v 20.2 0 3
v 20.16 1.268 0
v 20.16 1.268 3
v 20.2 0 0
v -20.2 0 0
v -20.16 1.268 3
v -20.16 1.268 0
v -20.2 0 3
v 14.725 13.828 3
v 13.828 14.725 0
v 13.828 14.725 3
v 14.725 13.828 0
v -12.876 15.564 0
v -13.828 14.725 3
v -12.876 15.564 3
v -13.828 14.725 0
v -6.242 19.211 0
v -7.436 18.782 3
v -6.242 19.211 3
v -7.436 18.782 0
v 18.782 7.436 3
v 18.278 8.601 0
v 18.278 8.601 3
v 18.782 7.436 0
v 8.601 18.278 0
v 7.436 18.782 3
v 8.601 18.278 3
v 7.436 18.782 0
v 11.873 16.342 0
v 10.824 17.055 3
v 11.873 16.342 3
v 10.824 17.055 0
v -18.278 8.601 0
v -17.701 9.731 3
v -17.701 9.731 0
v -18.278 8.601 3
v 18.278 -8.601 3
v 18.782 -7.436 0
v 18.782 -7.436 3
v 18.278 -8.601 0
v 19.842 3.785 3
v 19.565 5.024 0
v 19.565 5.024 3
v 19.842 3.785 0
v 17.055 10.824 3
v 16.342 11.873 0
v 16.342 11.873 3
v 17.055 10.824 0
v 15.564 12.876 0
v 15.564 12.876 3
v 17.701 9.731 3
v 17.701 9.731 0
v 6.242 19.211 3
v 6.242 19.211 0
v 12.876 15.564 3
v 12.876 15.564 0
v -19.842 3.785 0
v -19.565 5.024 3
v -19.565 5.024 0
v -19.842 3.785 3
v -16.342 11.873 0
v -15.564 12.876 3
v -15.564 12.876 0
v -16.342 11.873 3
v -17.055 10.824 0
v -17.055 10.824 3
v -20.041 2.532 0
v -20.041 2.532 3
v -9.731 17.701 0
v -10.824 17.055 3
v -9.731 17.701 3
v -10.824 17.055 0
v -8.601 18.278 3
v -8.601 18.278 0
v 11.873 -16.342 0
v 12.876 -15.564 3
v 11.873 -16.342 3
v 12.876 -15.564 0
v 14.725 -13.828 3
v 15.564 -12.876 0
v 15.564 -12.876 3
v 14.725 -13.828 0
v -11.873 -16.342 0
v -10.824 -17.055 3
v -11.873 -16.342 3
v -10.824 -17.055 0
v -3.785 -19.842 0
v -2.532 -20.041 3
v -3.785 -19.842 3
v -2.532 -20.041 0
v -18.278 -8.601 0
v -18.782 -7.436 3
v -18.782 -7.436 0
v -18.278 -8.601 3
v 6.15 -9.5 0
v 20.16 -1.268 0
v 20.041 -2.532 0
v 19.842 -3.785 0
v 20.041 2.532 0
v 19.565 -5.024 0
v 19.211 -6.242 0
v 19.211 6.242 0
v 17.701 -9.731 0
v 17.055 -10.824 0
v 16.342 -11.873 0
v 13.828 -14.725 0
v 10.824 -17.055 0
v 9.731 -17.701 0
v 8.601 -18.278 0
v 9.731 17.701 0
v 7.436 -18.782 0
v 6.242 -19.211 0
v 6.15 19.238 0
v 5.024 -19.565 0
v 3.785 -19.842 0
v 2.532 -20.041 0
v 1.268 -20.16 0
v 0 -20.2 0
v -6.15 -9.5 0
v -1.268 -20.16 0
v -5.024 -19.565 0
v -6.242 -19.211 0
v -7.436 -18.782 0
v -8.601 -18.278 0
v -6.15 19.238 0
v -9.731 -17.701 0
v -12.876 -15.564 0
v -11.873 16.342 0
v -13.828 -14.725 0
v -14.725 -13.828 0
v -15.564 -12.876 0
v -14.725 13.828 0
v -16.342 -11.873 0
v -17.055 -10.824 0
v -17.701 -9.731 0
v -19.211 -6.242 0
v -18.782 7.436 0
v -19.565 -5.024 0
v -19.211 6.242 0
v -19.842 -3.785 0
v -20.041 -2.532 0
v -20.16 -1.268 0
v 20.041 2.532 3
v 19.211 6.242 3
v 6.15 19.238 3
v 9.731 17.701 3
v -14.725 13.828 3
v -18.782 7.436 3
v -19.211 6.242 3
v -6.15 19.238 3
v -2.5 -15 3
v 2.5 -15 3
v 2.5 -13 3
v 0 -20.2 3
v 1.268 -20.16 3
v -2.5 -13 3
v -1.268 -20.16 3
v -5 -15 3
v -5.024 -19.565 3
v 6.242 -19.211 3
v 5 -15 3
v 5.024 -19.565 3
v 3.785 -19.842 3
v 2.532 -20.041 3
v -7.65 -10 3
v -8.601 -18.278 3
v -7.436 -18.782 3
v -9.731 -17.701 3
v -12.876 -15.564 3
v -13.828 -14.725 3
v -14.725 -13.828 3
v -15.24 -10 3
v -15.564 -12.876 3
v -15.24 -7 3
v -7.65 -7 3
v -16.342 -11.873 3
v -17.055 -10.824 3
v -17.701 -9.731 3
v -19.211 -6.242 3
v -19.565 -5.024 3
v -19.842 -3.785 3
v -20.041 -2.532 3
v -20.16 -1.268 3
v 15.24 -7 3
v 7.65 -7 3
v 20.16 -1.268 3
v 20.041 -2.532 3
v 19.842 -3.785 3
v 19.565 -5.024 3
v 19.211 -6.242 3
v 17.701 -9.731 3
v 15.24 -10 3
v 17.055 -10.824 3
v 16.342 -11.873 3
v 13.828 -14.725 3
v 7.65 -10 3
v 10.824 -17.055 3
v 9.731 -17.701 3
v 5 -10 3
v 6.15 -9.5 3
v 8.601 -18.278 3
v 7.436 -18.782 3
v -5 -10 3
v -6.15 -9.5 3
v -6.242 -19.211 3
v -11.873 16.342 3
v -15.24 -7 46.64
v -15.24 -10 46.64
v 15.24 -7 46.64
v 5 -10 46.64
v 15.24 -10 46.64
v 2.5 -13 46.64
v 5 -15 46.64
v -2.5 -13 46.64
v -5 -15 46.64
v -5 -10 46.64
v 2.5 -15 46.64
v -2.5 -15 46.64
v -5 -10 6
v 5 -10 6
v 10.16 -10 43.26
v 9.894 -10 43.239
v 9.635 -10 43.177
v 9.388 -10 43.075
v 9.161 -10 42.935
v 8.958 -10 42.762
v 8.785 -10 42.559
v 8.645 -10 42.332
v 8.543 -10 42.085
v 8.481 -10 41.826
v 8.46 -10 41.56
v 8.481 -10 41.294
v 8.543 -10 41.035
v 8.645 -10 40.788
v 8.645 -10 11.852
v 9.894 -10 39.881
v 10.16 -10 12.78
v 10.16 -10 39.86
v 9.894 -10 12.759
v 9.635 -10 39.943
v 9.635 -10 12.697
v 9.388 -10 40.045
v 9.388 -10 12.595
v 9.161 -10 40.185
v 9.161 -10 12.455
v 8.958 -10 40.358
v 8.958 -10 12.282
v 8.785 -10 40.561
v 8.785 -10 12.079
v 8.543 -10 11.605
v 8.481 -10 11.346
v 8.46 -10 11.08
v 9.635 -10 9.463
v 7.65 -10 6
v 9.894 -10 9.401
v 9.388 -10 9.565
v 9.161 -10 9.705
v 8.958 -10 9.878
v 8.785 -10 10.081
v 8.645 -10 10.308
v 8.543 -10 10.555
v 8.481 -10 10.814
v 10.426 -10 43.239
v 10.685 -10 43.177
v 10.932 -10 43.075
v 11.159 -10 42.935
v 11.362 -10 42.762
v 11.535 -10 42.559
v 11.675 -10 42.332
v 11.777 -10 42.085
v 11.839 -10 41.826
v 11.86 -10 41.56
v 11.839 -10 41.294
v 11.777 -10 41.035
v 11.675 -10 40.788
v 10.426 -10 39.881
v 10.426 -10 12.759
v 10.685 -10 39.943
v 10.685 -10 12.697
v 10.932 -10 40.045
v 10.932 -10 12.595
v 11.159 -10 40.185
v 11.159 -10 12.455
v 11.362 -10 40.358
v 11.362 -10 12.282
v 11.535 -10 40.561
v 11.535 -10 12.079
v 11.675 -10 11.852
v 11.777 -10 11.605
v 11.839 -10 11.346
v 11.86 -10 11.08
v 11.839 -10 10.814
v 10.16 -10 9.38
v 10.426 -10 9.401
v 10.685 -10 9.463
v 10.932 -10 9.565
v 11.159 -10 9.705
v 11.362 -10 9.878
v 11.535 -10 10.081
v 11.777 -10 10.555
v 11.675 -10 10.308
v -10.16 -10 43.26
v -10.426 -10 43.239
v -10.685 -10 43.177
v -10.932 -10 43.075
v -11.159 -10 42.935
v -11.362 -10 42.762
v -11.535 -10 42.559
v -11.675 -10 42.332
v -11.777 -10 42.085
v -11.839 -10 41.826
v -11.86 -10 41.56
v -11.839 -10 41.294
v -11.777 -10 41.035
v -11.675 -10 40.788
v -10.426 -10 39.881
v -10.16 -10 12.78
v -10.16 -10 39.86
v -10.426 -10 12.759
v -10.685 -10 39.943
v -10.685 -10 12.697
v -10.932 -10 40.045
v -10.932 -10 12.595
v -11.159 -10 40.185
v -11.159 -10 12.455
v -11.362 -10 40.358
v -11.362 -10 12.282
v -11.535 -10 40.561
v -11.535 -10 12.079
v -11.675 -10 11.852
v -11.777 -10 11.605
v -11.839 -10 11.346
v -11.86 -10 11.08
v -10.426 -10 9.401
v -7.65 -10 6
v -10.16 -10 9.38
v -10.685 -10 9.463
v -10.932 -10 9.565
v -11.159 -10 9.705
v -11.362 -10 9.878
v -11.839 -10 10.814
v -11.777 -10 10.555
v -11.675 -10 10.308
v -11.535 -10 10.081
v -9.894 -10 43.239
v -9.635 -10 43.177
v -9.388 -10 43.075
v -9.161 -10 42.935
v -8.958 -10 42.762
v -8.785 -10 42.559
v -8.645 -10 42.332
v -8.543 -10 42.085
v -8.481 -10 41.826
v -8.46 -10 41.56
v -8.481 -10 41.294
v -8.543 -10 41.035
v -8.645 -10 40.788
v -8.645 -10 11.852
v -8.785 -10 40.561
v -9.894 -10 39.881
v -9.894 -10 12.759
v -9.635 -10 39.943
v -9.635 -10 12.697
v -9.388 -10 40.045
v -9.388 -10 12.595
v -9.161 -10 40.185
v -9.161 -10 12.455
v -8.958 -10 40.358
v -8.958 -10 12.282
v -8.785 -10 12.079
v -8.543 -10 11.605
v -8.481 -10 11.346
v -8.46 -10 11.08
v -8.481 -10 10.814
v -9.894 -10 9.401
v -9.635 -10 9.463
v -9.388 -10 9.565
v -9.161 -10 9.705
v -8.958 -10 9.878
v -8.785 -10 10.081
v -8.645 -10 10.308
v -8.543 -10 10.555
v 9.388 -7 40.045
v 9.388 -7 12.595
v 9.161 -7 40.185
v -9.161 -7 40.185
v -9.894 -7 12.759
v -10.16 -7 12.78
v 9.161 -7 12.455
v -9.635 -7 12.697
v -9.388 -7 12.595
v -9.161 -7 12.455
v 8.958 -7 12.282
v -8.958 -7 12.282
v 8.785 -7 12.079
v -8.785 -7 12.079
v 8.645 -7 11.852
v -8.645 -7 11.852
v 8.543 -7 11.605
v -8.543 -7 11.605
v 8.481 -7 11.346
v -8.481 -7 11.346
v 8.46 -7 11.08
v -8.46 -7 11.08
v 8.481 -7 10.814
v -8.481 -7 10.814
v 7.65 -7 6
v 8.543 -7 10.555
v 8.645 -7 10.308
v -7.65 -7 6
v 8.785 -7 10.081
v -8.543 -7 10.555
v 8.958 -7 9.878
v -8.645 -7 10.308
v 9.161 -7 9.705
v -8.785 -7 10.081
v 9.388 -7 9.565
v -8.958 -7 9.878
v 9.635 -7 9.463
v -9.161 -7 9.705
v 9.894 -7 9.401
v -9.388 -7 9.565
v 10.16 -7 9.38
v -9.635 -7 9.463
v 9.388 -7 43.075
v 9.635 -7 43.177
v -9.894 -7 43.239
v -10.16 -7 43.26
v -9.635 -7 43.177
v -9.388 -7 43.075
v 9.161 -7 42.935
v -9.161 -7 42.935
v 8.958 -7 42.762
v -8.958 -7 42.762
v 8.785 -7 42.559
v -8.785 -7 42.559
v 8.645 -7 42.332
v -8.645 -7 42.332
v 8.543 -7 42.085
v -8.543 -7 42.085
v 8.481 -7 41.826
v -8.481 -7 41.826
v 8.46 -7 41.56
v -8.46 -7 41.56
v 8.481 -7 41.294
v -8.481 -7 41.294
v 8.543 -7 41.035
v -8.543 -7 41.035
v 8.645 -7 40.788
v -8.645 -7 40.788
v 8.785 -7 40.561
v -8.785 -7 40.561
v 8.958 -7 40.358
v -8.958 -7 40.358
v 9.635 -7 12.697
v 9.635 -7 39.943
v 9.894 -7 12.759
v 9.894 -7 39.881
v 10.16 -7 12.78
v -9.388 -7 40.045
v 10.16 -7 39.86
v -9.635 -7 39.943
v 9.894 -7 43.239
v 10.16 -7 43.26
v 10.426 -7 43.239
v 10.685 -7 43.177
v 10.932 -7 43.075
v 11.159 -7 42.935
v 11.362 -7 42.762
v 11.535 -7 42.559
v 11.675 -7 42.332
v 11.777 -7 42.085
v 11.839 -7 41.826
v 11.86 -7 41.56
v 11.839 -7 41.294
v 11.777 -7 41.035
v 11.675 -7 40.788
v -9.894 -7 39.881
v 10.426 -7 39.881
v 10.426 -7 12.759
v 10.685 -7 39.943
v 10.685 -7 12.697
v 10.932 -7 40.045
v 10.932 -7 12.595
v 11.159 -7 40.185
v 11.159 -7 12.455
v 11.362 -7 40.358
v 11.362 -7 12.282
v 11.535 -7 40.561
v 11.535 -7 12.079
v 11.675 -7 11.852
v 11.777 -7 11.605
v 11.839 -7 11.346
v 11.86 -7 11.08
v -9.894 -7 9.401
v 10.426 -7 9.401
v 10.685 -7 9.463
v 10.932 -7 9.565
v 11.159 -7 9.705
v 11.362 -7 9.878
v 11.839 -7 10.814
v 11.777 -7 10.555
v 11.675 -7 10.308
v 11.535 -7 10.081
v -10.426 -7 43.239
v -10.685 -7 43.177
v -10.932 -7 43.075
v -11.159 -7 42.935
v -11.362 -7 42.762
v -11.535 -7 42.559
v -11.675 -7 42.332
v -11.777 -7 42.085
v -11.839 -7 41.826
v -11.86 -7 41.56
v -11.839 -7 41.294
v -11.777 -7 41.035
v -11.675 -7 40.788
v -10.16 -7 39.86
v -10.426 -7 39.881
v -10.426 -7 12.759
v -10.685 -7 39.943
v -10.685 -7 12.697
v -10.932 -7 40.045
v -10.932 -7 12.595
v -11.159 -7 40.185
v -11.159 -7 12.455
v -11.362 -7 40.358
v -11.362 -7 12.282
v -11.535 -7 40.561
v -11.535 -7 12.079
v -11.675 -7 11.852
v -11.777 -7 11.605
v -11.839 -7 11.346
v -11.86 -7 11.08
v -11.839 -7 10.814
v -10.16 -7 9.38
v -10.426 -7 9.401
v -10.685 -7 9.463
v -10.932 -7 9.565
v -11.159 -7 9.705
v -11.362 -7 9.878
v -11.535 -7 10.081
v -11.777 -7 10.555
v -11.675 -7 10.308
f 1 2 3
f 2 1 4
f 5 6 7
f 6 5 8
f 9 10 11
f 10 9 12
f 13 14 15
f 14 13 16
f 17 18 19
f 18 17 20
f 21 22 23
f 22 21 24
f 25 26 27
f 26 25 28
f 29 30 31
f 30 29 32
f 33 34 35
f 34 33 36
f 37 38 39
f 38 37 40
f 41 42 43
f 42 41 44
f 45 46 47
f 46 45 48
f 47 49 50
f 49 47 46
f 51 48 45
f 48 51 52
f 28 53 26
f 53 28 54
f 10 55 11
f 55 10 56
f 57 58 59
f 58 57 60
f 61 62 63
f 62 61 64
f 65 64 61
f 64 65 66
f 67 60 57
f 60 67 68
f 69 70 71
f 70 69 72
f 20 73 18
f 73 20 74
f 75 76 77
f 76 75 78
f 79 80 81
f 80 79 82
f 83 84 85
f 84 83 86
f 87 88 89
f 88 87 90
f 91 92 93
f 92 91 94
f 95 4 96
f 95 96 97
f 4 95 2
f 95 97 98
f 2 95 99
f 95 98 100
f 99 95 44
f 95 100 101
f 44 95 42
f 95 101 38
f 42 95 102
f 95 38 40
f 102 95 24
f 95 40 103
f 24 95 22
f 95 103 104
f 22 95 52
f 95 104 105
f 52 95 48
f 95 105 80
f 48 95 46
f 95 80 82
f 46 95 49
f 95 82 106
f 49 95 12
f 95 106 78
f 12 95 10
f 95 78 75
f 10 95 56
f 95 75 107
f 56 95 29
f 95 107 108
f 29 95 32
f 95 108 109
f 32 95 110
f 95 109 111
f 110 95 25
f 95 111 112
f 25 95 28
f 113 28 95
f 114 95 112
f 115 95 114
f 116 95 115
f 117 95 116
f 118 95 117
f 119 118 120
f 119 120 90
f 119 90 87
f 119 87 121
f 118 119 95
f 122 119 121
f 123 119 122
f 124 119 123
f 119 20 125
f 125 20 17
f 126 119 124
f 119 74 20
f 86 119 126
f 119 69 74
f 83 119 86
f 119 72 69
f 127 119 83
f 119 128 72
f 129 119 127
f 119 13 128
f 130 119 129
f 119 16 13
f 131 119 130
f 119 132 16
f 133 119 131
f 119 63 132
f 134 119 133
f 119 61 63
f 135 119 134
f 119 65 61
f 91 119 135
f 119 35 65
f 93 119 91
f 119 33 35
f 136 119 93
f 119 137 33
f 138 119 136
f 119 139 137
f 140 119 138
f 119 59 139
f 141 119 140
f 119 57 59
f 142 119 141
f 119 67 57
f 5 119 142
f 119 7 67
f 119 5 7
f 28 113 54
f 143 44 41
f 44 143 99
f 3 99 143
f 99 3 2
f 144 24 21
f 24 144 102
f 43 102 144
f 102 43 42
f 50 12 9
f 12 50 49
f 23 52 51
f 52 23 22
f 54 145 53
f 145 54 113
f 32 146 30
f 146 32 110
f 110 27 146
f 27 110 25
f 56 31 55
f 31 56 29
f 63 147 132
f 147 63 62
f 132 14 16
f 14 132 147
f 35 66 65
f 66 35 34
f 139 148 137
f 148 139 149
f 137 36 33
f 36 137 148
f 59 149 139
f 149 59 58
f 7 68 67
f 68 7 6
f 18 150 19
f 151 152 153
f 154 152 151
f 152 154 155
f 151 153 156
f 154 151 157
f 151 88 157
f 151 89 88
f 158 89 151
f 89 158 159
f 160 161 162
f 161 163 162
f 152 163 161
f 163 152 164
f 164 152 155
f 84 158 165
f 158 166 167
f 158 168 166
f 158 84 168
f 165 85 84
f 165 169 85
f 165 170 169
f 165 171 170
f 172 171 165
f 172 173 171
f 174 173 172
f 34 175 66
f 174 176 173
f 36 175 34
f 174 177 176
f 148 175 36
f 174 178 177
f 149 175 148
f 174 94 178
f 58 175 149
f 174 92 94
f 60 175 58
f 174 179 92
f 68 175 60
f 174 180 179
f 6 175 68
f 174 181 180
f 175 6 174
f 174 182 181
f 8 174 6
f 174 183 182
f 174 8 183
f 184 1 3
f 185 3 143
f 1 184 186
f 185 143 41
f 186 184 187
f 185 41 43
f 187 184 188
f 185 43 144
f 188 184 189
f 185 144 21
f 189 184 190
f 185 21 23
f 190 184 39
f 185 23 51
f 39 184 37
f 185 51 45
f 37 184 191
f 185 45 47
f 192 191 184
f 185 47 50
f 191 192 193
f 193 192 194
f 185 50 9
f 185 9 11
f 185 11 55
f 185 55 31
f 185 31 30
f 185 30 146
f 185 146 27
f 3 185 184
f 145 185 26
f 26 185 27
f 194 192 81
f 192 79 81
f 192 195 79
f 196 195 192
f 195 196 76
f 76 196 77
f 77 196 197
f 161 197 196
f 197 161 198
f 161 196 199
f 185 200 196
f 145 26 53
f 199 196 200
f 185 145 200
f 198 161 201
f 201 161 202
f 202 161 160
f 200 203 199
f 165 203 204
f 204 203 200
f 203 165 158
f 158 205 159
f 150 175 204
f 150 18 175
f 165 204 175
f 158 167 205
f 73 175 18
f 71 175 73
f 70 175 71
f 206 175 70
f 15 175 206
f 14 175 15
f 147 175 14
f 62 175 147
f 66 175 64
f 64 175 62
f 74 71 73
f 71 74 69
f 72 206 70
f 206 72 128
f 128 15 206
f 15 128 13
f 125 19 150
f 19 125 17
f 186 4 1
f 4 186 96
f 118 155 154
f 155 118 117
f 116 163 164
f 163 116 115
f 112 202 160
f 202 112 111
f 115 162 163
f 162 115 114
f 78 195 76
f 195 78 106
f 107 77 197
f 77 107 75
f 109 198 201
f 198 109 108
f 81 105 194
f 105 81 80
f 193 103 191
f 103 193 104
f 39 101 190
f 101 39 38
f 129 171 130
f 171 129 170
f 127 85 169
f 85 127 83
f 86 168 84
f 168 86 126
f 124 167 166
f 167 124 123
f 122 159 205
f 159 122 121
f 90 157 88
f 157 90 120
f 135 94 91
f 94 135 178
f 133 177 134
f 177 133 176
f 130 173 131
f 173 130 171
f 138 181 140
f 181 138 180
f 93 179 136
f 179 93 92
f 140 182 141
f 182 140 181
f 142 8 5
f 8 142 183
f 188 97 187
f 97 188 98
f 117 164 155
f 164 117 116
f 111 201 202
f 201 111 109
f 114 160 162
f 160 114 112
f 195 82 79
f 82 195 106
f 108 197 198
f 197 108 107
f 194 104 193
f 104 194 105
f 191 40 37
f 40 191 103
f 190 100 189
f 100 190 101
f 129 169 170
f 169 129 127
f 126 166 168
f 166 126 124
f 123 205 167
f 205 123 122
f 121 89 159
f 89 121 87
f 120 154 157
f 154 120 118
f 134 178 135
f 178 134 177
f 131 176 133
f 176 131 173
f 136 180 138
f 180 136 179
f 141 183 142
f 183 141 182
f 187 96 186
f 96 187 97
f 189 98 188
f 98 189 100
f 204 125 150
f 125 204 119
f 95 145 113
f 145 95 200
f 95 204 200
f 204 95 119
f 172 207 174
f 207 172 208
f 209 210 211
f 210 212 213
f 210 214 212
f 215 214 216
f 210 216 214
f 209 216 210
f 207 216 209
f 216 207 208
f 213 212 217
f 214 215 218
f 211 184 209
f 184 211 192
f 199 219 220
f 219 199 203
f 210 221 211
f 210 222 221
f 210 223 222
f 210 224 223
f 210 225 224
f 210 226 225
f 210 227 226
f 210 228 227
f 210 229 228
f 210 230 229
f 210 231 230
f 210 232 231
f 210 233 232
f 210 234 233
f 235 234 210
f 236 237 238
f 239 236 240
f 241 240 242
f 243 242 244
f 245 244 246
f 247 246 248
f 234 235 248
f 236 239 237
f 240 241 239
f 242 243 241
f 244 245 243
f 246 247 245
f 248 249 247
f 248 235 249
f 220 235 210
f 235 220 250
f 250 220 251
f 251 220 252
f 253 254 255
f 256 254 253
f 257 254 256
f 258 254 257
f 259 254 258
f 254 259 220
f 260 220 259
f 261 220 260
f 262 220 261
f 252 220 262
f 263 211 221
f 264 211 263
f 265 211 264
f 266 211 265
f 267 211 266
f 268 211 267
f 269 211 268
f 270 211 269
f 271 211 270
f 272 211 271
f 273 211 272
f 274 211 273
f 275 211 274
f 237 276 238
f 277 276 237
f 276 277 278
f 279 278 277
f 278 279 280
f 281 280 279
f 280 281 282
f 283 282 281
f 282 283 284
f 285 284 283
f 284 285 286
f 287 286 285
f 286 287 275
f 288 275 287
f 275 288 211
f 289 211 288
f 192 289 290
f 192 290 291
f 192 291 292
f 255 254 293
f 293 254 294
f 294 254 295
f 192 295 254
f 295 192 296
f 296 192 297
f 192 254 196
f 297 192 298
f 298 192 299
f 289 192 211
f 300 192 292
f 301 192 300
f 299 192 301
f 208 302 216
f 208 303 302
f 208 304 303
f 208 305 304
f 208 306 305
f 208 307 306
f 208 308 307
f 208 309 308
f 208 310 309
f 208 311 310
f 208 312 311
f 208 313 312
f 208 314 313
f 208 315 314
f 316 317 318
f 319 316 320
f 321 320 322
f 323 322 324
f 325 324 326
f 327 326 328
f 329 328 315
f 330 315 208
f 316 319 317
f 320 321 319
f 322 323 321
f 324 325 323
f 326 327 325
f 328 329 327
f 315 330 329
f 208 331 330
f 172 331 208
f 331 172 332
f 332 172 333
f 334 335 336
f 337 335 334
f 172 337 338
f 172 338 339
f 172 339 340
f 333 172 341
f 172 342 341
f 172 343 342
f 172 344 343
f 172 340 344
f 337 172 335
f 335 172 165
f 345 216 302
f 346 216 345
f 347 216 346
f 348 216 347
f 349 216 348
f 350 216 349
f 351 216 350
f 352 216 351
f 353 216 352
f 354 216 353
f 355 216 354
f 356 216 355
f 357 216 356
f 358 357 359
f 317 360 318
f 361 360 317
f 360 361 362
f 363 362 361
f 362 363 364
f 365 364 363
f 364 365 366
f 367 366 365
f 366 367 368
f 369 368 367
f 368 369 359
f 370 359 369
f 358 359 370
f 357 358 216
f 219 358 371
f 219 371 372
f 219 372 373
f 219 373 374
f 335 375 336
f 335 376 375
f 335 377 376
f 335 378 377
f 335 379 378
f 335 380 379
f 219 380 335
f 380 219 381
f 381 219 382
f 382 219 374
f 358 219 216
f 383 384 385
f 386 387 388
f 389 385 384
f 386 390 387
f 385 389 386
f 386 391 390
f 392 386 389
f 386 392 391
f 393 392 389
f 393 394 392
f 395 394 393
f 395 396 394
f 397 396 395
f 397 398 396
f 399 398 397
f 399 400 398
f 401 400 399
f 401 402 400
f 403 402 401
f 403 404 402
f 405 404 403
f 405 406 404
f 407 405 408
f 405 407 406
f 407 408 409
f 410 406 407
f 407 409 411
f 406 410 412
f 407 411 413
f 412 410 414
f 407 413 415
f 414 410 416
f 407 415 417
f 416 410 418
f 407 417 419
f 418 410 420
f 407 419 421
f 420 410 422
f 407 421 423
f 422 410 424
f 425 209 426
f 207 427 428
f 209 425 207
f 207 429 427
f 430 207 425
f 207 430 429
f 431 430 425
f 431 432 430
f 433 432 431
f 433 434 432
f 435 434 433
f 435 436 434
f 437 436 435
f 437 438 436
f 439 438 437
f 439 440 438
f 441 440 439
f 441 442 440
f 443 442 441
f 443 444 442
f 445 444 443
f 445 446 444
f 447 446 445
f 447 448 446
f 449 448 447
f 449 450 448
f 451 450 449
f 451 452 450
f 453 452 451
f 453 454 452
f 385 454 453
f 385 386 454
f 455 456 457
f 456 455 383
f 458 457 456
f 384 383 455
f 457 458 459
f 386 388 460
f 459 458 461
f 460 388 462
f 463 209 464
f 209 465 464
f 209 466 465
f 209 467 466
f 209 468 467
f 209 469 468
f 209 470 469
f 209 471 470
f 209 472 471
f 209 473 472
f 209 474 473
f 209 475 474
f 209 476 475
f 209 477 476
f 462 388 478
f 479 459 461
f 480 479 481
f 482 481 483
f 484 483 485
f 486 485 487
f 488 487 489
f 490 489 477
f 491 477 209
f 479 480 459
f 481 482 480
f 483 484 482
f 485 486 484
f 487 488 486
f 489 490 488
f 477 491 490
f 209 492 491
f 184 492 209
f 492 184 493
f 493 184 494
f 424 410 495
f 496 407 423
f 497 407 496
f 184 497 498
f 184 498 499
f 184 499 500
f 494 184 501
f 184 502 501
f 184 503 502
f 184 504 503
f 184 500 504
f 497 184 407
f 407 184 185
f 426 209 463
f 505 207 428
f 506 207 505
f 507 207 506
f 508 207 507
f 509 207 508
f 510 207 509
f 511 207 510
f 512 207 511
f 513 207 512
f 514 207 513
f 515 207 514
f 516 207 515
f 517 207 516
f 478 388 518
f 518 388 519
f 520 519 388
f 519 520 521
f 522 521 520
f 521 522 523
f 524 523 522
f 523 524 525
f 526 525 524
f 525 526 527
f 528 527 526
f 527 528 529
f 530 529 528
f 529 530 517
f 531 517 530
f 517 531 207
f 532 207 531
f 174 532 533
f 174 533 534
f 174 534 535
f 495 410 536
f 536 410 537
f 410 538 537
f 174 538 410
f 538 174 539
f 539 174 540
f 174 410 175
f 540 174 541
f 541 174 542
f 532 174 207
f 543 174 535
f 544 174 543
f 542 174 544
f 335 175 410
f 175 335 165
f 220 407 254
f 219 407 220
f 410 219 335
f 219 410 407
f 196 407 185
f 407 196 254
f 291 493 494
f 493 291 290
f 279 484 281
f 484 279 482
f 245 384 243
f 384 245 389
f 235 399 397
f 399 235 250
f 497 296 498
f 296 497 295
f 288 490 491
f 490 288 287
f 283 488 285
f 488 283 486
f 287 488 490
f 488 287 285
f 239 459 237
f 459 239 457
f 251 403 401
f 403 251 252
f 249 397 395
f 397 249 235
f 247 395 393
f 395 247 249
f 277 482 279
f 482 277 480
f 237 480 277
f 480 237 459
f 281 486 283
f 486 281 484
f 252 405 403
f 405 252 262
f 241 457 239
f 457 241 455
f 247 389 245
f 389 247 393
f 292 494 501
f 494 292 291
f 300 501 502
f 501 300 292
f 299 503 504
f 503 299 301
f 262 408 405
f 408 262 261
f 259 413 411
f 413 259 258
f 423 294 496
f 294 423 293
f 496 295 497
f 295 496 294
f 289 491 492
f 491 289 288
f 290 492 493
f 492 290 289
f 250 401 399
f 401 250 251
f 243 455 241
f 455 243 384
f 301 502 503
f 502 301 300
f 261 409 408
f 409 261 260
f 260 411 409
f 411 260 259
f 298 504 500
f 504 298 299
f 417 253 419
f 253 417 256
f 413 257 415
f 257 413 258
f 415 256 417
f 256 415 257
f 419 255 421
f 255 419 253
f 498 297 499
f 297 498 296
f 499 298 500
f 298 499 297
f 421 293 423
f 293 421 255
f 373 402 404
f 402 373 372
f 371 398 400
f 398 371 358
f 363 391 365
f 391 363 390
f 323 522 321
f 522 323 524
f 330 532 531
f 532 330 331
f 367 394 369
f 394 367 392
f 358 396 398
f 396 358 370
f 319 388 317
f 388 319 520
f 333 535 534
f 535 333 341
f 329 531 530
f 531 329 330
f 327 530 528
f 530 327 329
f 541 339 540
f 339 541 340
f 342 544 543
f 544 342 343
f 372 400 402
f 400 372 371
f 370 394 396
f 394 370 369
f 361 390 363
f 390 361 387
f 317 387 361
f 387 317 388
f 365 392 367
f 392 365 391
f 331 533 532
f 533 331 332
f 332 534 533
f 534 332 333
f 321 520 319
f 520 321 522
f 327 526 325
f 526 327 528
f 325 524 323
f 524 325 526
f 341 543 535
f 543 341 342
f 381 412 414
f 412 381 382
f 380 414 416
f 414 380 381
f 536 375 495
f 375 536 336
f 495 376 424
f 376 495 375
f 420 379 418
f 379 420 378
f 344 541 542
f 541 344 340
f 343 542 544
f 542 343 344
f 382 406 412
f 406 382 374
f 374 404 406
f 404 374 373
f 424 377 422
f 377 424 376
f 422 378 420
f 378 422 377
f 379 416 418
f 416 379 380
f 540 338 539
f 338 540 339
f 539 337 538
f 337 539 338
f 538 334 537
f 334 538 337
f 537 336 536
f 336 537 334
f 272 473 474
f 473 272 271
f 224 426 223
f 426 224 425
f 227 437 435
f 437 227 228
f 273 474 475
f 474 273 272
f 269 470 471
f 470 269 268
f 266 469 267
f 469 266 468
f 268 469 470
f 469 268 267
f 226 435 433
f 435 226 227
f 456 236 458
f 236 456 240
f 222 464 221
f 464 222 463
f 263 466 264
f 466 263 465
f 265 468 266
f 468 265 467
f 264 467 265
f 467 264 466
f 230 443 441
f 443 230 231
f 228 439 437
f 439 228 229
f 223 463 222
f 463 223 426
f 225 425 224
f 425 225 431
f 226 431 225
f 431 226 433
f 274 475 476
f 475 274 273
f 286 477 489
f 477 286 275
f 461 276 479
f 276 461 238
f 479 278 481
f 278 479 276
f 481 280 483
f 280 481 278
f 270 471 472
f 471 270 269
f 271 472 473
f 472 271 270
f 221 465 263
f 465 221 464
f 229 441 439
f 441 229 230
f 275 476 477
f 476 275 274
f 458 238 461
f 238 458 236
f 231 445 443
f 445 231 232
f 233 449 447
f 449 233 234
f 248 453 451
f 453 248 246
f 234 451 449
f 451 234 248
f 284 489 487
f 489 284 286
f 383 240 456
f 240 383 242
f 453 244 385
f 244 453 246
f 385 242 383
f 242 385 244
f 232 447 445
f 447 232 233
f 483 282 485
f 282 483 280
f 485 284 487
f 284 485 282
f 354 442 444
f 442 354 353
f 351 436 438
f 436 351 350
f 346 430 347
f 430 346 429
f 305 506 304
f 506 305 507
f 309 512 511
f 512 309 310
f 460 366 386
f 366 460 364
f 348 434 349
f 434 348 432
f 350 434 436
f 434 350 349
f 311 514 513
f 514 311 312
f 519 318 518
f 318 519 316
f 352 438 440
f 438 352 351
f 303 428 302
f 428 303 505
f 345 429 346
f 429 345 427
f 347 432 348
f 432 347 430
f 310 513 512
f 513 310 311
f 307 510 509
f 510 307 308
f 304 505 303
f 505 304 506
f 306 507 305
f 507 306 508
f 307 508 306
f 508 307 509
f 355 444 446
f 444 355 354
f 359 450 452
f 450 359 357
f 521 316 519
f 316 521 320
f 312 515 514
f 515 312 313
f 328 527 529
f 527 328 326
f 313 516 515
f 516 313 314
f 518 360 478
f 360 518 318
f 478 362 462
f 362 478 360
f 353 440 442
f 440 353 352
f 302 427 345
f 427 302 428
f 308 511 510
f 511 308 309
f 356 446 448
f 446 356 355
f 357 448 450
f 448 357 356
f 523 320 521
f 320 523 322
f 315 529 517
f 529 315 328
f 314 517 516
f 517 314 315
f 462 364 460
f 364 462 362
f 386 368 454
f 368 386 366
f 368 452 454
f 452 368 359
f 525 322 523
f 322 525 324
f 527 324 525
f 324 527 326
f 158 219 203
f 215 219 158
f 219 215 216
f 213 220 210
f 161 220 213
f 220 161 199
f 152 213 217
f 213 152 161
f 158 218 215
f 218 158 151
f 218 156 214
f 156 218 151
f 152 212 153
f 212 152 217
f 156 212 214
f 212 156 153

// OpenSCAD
// file: ../src/polyScrewThread_r1.scad
/*
 *    polyScrewThread_r1.scad    by aubenc @ Thingiverse
 *
 * This script contains the library modules that can be used to generate
 * threaded rods, screws and nuts.
 *
 * http://www.thingiverse.com/thing:8796
 *
 * CC Public Domain
 */


/* Example:
 * Just a 100mm long threaded rod.
 *
 * screw_thread(15,   // Outer diameter of the thread
 *               4,   // Step, traveling length per turn, also, tooth height, whatever...
 *              55,   // Degrees for the shape of the tooth 
 *                       (XY plane = 0, Z = 90, btw, 0 and 90 will/should not work...)
 *             100,   // Length (Z) of the tread
 *            PI/2,   // Resolution, one face each "PI/2" mm of the perimeter, 
 *               0);  // Countersink style:
 *                         -2 - Not even flat ends
 *                         -1 - Bottom (countersink'd and top flat)
 *                          0 - None (top and bottom flat)
 *                          1 - Top (bottom flat)
 *                          2 - Both (countersink'd)
 */
module screw_thread(od,st,lf0,lt,rs,cs)
{
    or=od/2;
    ir=or-st/2*cos(lf0)/sin(lf0);
    pf=2*PI*or;
    sn=floor(pf/rs);
    lfxy=360/sn;
    ttn=round(lt/st+1);
    zt=st/sn;

    intersection()
    {
        if (cs >= -1)
        {
           thread_shape(cs,lt,or,ir,sn,st);
        }

        full_thread(ttn,st,sn,zt,lfxy,or,ir);
    }
}

/* Example.
 * A nut for the thread rod example.
 *
 * hexa_nut(24,  // Distance between flats
 *           8,  // Height 
 *           4,  // Step height (the half will be used to countersink the ends)
 *          55,  // Degrees (same as used for the screw_thread example)
 *          15,  // Outer diameter of the thread to match
 *         0.5)  // Resolution, you may want to set this to small values
 *                  (quite high res) to minimize overhang issues
 *
 */
module hex_nut(df,hg,sth,clf,cod,crs)
{

    difference()
    {
        hex_head(hg,df);

        hex_countersink_ends(sth/2,cod,clf,crs,hg);

        screw_thread(cod,sth,clf,hg,crs,-2);
    }
}


module hex_screw(od,st,lf0,lt,rs,cs,df,hg,ntl,ntd)
{
    ntr=od/2-(st/2)*cos(lf0)/sin(lf0);

    union()
    {
        hex_head(hg,df);

        translate([0,0,hg])
        if ( ntl == 0 )
        {
            cylinder(h=0.01, r=ntr, center=true);
        }
        else
        {
            if ( ntd == -1 )
            {
                cylinder(h=ntl+0.01, r=ntr, $fn=floor(od*PI/rs), center=false);
            }
            else if ( ntd == 0 )
            {
                union()
                {
                    cylinder(h=ntl-st/2,
                             r=od/2, $fn=floor(od*PI/rs), center=false);

                    translate([0,0,ntl-st/2])
                    cylinder(h=st/2,
                             r1=od/2, r2=ntr, 
                             $fn=floor(od*PI/rs), center=false);
                }
            }
            else
            {
                cylinder(h=ntl, r=ntd/2, $fn=ntd*PI/rs, center=false);
            }
        }

        translate([0,0,ntl+hg]) screw_thread(od,st,lf0,lt,rs,cs);
    }
}

module hex_screw_0(od,st,lf0,lt,rs,cs,df,hg,ntl,ntd)
{
    ntr=od/2-(st/2)*cos(lf0)/sin(lf0);

    union()
    {
        hex_head_0(hg,df);

        translate([0,0,hg])
        if ( ntl == 0 )
        {
            cylinder(h=0.01, r=ntr, center=true);
        }
        else
        {
            if ( ntd == -1 )
            {
                cylinder(h=ntl+0.01, r=ntr, $fn=floor(od*PI/rs), center=false);
            }
            else if ( ntd == 0 )
            {
                union()
                {
                    cylinder(h=ntl-st/2,
                             r=od/2, $fn=floor(od*PI/rs), center=false);

                    translate([0,0,ntl-st/2])
                    cylinder(h=st/2,
                             r1=od/2, r2=ntr, 
                             $fn=floor(od*PI/rs), center=false);
                }
            }
            else
            {
                cylinder(h=ntl, r=ntd/2, $fn=ntd*PI/rs, center=false);
            }
        }

        translate([0,0,ntl+hg]) screw_thread(od,st,lf0,lt,rs,cs);
    }
}

module thread_shape(cs,lt,or,ir,sn,st)
{
    if ( cs == 0 )
    {
        cylinder(h=lt, r=or, $fn=sn, center=false);
    }
    else
    {
        union()
        {
            translate([0,0,st/2])
              cylinder(h=lt-st+0.005, r=or, $fn=sn, center=false);

            if ( cs == -1 || cs == 2 )
            {
                cylinder(h=st/2, r1=ir, r2=or, $fn=sn, center=false);
            }
            else
            {
                cylinder(h=st/2, r=or, $fn=sn, center=false);
            }

            translate([0,0,lt-st/2])
            if ( cs == 1 || cs == 2 )
            {
                  cylinder(h=st/2, r1=or, r2=ir, $fn=sn, center=false);
            }
            else
            {
                cylinder(h=st/2, r=or, $fn=sn, center=false);
            }
        }
    }
}

module full_thread(ttn,st,sn,zt,lfxy,or,ir)
{
  if(ir >= 0.2)
  {
    for(i=[0:ttn-1])
    {
        for(j=[0:sn-1])
			assign( pt = [	[0,                  0,                  i*st-st            ],
                        [ir*cos(j*lfxy),     ir*sin(j*lfxy),     i*st+j*zt-st       ],
                        [ir*cos((j+1)*lfxy), ir*sin((j+1)*lfxy), i*st+(j+1)*zt-st   ],
								[0,0,i*st],
                        [or*cos(j*lfxy),     or*sin(j*lfxy),     i*st+j*zt-st/2     ],
                        [or*cos((j+1)*lfxy), or*sin((j+1)*lfxy), i*st+(j+1)*zt-st/2 ],
                        [ir*cos(j*lfxy),     ir*sin(j*lfxy),     i*st+j*zt          ],
                        [ir*cos((j+1)*lfxy), ir*sin((j+1)*lfxy), i*st+(j+1)*zt      ],
                        [0,                  0,                  i*st+st            ]	])
        {
            polyhedron(points=pt,
              		  triangles=[	[1,0,3],[1,3,6],[6,3,8],[1,6,4],
											[0,1,2],[1,4,2],[2,4,5],[5,4,6],[5,6,7],[7,6,8],
											[7,8,3],[0,2,3],[3,2,7],[7,2,5]	]);
        }
    }
  }
  else
  {
    echo("Step Degrees too agresive, the thread will not be made!!");
    echo("Try to increase de value for the degrees and/or...");
    echo(" decrease the pitch value and/or...");
    echo(" increase the outer diameter value.");
  }
}

module hex_head(hg,df)
{
	rd0=df/2/sin(60);
	x0=0;	x1=df/2;	x2=x1+hg/2;
	y0=0;	y1=hg/2;	y2=hg;

	intersection()
	{
	   cylinder(h=hg, r=rd0, $fn=6, center=false);

		rotate_extrude(convexity=10, $fn=6*round(df*PI/6/0.5))
		polygon([ [x0,y0],[x1,y0],[x2,y1],[x1,y2],[x0,y2] ]);
	}
}

module hex_head_0(hg,df)
{
    cylinder(h=hg, r=df/2/sin(60), $fn=6, center=false);
}

module hex_countersink_ends(chg,cod,clf,crs,hg)
{
    translate([0,0,-0.1])
    cylinder(h=chg+0.01, 
             r1=cod/2, 
             r2=cod/2-(chg+0.1)*cos(clf)/sin(clf),
             $fn=floor(cod*PI/crs), center=false);

    translate([0,0,hg-chg+0.1])
    cylinder(h=chg+0.01, 
             r1=cod/2-(chg+0.1)*cos(clf)/sin(clf),
             r2=cod/2, 
             $fn=floor(cod*PI/crs), center=false);
}
// file: ../src/WINDGAUGE02A_S03.scad
$fn=40; // model faces resolution.
include <../configuration.scad>

include <polyScrewThread_r1.scad>

//Držák na konektor RJ11

S03_mezera_pod_modulem = 3;
sloupek_hloubka = 5; 
sloupek_sirka = 10;
drazka_hloubka = 2;
drazka_sirka = 5;

PI=3.141592;
module WINDGAUGE02A_S03()
    {
    difference()
        {
        translate([0,0,0])
            cylinder (h = S01_sila_drzaku_RJ11, r=(S01_prumer_vnitrni)/2-S01_hloubka_zavitu/2-0.3, $fn=100); 
            
        translate([0,0,S01_sila_drzaku_RJ11/2])           
            cube([S01_hrana_A_RJ11,S01_hrana_B_RJ11,S01_sila_drzaku_RJ11+0.01],center=true);

        //otvor až ke kraji
        translate([0,((S01_prumer_vnitrni)/2-S01_hloubka_zavitu/2+0.5)/2,S01_sila_drzaku_RJ11/2])
            cube([S01_hrana_A_RJ11,(S01_prumer_vnitrni)/2-S01_hloubka_zavitu/2+0.5,S01_sila_drzaku_RJ11+0.01],center=true);
        }
        
        // desticka pro pridelani modulu..
     difference(){
         translate([-senzor_sirka/2, -10, S01_sila_drzaku_RJ11])
            cube([senzor_sirka,3,S03_mezera_pod_modulem+senzor_delka]);
         
         translate([-(S01_hrana_A_RJ11+3)/2, -10, S01_sila_drzaku_RJ11])
            cube([S01_hrana_A_RJ11+3,3,S03_mezera_pod_modulem]);
         
         translate([10.16, 0, S01_sila_drzaku_RJ11+10.16*0.5+S03_mezera_pod_modulem])
            rotate([90, 0, 0]) cylinder(d=prumer_sroubu, h=50);
         translate([-10.16, 0, S01_sila_drzaku_RJ11+10.16*0.5+S03_mezera_pod_modulem])
            rotate([90, 0, 0]) cylinder(d=prumer_sroubu, h=50);
         translate([10.16, 0, S01_sila_drzaku_RJ11+10.16*3.5+S03_mezera_pod_modulem])
            rotate([90, 0, 0]) cylinder(d=prumer_sroubu, h=50);
         translate([-10.16, 0, S01_sila_drzaku_RJ11+10.16*3.5+S03_mezera_pod_modulem])
            rotate([90, 0, 0]) cylinder(d=prumer_sroubu, h=50);
         }
     difference(){
         translate([-sloupek_sirka/2, -10-sloupek_hloubka, S01_sila_drzaku_RJ11])
            cube([sloupek_sirka, sloupek_hloubka ,S03_mezera_pod_modulem+senzor_delka]);
         
         translate([-drazka_sirka/2, -10-sloupek_hloubka*2+drazka_hloubka, S01_sila_drzaku_RJ11])
            cube([drazka_sirka, sloupek_hloubka ,S03_mezera_pod_modulem+senzor_delka+0.3]);
        
     }

    }

// Kontrolni valec. Vse jim musi projit
//#% cylinder(h=S01_vyska, d=(S01_prumer_vnitrni)-1-1.5*S01_hloubka_zavitu);
  
WINDGAUGE02A_S03(); 
// file: ../configuration.scad
$fn=40; // model faces resolution.

//OBECNE PARAMETRY 
//----------------------------------------------------------------
//----------------------------------------------------------------
//WINDGAUGE02A_S02 - Parametry pro hlavni valec anemometru
S01_hloubka_zavitu=4;
S01_vyska=95; //80
S01_prumer_vnitrni=45;
S01_prumer_vnitrniB=30;
S01_prechod_vyska=45;
S01_prechod_delka=30;
S01_sila_materialu=1.3;
S01_vyska_horni_zavit=10;
S01_vyska_spodniho_zavitu=10;
S01_sila_drzaku_RJ11=3; //vyška drážky
S01_hrana_A_RJ11=12.3;
S01_hrana_B_RJ11=19;
S01_tolerance_zavit=1.5;

//Obecné parametry
prumer_osicky=5;
sterbina_na_osicku=0.5; //aby nepraskal a držel držák rotoru na hřídelce

//Rozmery modulu pro lozisko
senzor_delka=10.16*4;
senzor_sirka=10.16*3;
senzor_vyska_IO=2;
senzor_odstup_od_magnetu=2;

//Parametry loziska
lozisko_prumer_vnitrni=4.9;
lozisko_prumer_vnejsi=16.15;
lozisko_vyska=5*2;
lozisko_prekryv=1.5;

//Parametry magnetu
magnet_pocet=3;
magnet_prumer=6.3;
magnet_vyska=3;
magnet_zapusteni=2;
magnet_tolerance_prumeru=0.2;
magnet_vzdalenost = 9; // vzdalenost magnetu od stredu

R03_vyska_narezeni_hridelky=5;

//Parametry sroubu
prumer_sroubu=3.4;
prumer_hlavy_sroubu=6;
vyska_hlavy_sroubu=4;
vyska_matky=3;
sirka_matky=6.7;

sirka_matky_tol=0.175;
prumer_orechu=10;

//WINDGAUGE02A_R01 //pro lopatku
L01_hrana_drzaku_a=10;
L01_hrana_drzaku_b=3;
L01_delka_uchytu=25;
L01_prumer_lopatky=40;
L01_sila_materialu_lopatky=1.2;

//WINDGAUGE02A_D01 //uchyt velky
D01_material_pod_zavitem=5;
D01_material_za_zavitem=3;
D01_material_pred_zavitem=2;
D01_delka_tyce=60;
D01_sirka_tyce=10;

//WINDGAUGE02A_D02 //uchyt na sloup
D02_sila_materialu=4;
D02_vyska_uchytky=30;
D02_prumer_obruby=24; 

//27mm - 3/4 trubka
D02_delka_celeho_uchytu=60;
D02_dotahova_vzdalenost=1.5;
D02_prumer_uchytneho_sroubu=4.2;
//D02_sirka_matky=9.1; //pro M4
//D02_vyska_matky=3;
D02_sirka_matky= sirka_matky; //pro M3
D02_vyska_matky= vyska_matky;

//WINDGAUGE02A_R01 //rotor s prekritim statoru
R01_vyska_preryti_statoru=10;
R01_sila_materialu_pro_prekriti=1.3;
R01_mezera_mezi_statorem_rotorem=3;

//WINDGAUGE02A_R03 //drzak magnetu
R05_sirka_matky=10;
// main file
$fn=100; // model faces resolution.
include <../configuration.scad>

use <../src/WINDGAUGE02A_S03.scad>
use <../src/polyScrewThread_r1.scad>

translate([0,0,0])
    rotate([0, 0, 0])
        WINDGAUGE02A_S03();   
